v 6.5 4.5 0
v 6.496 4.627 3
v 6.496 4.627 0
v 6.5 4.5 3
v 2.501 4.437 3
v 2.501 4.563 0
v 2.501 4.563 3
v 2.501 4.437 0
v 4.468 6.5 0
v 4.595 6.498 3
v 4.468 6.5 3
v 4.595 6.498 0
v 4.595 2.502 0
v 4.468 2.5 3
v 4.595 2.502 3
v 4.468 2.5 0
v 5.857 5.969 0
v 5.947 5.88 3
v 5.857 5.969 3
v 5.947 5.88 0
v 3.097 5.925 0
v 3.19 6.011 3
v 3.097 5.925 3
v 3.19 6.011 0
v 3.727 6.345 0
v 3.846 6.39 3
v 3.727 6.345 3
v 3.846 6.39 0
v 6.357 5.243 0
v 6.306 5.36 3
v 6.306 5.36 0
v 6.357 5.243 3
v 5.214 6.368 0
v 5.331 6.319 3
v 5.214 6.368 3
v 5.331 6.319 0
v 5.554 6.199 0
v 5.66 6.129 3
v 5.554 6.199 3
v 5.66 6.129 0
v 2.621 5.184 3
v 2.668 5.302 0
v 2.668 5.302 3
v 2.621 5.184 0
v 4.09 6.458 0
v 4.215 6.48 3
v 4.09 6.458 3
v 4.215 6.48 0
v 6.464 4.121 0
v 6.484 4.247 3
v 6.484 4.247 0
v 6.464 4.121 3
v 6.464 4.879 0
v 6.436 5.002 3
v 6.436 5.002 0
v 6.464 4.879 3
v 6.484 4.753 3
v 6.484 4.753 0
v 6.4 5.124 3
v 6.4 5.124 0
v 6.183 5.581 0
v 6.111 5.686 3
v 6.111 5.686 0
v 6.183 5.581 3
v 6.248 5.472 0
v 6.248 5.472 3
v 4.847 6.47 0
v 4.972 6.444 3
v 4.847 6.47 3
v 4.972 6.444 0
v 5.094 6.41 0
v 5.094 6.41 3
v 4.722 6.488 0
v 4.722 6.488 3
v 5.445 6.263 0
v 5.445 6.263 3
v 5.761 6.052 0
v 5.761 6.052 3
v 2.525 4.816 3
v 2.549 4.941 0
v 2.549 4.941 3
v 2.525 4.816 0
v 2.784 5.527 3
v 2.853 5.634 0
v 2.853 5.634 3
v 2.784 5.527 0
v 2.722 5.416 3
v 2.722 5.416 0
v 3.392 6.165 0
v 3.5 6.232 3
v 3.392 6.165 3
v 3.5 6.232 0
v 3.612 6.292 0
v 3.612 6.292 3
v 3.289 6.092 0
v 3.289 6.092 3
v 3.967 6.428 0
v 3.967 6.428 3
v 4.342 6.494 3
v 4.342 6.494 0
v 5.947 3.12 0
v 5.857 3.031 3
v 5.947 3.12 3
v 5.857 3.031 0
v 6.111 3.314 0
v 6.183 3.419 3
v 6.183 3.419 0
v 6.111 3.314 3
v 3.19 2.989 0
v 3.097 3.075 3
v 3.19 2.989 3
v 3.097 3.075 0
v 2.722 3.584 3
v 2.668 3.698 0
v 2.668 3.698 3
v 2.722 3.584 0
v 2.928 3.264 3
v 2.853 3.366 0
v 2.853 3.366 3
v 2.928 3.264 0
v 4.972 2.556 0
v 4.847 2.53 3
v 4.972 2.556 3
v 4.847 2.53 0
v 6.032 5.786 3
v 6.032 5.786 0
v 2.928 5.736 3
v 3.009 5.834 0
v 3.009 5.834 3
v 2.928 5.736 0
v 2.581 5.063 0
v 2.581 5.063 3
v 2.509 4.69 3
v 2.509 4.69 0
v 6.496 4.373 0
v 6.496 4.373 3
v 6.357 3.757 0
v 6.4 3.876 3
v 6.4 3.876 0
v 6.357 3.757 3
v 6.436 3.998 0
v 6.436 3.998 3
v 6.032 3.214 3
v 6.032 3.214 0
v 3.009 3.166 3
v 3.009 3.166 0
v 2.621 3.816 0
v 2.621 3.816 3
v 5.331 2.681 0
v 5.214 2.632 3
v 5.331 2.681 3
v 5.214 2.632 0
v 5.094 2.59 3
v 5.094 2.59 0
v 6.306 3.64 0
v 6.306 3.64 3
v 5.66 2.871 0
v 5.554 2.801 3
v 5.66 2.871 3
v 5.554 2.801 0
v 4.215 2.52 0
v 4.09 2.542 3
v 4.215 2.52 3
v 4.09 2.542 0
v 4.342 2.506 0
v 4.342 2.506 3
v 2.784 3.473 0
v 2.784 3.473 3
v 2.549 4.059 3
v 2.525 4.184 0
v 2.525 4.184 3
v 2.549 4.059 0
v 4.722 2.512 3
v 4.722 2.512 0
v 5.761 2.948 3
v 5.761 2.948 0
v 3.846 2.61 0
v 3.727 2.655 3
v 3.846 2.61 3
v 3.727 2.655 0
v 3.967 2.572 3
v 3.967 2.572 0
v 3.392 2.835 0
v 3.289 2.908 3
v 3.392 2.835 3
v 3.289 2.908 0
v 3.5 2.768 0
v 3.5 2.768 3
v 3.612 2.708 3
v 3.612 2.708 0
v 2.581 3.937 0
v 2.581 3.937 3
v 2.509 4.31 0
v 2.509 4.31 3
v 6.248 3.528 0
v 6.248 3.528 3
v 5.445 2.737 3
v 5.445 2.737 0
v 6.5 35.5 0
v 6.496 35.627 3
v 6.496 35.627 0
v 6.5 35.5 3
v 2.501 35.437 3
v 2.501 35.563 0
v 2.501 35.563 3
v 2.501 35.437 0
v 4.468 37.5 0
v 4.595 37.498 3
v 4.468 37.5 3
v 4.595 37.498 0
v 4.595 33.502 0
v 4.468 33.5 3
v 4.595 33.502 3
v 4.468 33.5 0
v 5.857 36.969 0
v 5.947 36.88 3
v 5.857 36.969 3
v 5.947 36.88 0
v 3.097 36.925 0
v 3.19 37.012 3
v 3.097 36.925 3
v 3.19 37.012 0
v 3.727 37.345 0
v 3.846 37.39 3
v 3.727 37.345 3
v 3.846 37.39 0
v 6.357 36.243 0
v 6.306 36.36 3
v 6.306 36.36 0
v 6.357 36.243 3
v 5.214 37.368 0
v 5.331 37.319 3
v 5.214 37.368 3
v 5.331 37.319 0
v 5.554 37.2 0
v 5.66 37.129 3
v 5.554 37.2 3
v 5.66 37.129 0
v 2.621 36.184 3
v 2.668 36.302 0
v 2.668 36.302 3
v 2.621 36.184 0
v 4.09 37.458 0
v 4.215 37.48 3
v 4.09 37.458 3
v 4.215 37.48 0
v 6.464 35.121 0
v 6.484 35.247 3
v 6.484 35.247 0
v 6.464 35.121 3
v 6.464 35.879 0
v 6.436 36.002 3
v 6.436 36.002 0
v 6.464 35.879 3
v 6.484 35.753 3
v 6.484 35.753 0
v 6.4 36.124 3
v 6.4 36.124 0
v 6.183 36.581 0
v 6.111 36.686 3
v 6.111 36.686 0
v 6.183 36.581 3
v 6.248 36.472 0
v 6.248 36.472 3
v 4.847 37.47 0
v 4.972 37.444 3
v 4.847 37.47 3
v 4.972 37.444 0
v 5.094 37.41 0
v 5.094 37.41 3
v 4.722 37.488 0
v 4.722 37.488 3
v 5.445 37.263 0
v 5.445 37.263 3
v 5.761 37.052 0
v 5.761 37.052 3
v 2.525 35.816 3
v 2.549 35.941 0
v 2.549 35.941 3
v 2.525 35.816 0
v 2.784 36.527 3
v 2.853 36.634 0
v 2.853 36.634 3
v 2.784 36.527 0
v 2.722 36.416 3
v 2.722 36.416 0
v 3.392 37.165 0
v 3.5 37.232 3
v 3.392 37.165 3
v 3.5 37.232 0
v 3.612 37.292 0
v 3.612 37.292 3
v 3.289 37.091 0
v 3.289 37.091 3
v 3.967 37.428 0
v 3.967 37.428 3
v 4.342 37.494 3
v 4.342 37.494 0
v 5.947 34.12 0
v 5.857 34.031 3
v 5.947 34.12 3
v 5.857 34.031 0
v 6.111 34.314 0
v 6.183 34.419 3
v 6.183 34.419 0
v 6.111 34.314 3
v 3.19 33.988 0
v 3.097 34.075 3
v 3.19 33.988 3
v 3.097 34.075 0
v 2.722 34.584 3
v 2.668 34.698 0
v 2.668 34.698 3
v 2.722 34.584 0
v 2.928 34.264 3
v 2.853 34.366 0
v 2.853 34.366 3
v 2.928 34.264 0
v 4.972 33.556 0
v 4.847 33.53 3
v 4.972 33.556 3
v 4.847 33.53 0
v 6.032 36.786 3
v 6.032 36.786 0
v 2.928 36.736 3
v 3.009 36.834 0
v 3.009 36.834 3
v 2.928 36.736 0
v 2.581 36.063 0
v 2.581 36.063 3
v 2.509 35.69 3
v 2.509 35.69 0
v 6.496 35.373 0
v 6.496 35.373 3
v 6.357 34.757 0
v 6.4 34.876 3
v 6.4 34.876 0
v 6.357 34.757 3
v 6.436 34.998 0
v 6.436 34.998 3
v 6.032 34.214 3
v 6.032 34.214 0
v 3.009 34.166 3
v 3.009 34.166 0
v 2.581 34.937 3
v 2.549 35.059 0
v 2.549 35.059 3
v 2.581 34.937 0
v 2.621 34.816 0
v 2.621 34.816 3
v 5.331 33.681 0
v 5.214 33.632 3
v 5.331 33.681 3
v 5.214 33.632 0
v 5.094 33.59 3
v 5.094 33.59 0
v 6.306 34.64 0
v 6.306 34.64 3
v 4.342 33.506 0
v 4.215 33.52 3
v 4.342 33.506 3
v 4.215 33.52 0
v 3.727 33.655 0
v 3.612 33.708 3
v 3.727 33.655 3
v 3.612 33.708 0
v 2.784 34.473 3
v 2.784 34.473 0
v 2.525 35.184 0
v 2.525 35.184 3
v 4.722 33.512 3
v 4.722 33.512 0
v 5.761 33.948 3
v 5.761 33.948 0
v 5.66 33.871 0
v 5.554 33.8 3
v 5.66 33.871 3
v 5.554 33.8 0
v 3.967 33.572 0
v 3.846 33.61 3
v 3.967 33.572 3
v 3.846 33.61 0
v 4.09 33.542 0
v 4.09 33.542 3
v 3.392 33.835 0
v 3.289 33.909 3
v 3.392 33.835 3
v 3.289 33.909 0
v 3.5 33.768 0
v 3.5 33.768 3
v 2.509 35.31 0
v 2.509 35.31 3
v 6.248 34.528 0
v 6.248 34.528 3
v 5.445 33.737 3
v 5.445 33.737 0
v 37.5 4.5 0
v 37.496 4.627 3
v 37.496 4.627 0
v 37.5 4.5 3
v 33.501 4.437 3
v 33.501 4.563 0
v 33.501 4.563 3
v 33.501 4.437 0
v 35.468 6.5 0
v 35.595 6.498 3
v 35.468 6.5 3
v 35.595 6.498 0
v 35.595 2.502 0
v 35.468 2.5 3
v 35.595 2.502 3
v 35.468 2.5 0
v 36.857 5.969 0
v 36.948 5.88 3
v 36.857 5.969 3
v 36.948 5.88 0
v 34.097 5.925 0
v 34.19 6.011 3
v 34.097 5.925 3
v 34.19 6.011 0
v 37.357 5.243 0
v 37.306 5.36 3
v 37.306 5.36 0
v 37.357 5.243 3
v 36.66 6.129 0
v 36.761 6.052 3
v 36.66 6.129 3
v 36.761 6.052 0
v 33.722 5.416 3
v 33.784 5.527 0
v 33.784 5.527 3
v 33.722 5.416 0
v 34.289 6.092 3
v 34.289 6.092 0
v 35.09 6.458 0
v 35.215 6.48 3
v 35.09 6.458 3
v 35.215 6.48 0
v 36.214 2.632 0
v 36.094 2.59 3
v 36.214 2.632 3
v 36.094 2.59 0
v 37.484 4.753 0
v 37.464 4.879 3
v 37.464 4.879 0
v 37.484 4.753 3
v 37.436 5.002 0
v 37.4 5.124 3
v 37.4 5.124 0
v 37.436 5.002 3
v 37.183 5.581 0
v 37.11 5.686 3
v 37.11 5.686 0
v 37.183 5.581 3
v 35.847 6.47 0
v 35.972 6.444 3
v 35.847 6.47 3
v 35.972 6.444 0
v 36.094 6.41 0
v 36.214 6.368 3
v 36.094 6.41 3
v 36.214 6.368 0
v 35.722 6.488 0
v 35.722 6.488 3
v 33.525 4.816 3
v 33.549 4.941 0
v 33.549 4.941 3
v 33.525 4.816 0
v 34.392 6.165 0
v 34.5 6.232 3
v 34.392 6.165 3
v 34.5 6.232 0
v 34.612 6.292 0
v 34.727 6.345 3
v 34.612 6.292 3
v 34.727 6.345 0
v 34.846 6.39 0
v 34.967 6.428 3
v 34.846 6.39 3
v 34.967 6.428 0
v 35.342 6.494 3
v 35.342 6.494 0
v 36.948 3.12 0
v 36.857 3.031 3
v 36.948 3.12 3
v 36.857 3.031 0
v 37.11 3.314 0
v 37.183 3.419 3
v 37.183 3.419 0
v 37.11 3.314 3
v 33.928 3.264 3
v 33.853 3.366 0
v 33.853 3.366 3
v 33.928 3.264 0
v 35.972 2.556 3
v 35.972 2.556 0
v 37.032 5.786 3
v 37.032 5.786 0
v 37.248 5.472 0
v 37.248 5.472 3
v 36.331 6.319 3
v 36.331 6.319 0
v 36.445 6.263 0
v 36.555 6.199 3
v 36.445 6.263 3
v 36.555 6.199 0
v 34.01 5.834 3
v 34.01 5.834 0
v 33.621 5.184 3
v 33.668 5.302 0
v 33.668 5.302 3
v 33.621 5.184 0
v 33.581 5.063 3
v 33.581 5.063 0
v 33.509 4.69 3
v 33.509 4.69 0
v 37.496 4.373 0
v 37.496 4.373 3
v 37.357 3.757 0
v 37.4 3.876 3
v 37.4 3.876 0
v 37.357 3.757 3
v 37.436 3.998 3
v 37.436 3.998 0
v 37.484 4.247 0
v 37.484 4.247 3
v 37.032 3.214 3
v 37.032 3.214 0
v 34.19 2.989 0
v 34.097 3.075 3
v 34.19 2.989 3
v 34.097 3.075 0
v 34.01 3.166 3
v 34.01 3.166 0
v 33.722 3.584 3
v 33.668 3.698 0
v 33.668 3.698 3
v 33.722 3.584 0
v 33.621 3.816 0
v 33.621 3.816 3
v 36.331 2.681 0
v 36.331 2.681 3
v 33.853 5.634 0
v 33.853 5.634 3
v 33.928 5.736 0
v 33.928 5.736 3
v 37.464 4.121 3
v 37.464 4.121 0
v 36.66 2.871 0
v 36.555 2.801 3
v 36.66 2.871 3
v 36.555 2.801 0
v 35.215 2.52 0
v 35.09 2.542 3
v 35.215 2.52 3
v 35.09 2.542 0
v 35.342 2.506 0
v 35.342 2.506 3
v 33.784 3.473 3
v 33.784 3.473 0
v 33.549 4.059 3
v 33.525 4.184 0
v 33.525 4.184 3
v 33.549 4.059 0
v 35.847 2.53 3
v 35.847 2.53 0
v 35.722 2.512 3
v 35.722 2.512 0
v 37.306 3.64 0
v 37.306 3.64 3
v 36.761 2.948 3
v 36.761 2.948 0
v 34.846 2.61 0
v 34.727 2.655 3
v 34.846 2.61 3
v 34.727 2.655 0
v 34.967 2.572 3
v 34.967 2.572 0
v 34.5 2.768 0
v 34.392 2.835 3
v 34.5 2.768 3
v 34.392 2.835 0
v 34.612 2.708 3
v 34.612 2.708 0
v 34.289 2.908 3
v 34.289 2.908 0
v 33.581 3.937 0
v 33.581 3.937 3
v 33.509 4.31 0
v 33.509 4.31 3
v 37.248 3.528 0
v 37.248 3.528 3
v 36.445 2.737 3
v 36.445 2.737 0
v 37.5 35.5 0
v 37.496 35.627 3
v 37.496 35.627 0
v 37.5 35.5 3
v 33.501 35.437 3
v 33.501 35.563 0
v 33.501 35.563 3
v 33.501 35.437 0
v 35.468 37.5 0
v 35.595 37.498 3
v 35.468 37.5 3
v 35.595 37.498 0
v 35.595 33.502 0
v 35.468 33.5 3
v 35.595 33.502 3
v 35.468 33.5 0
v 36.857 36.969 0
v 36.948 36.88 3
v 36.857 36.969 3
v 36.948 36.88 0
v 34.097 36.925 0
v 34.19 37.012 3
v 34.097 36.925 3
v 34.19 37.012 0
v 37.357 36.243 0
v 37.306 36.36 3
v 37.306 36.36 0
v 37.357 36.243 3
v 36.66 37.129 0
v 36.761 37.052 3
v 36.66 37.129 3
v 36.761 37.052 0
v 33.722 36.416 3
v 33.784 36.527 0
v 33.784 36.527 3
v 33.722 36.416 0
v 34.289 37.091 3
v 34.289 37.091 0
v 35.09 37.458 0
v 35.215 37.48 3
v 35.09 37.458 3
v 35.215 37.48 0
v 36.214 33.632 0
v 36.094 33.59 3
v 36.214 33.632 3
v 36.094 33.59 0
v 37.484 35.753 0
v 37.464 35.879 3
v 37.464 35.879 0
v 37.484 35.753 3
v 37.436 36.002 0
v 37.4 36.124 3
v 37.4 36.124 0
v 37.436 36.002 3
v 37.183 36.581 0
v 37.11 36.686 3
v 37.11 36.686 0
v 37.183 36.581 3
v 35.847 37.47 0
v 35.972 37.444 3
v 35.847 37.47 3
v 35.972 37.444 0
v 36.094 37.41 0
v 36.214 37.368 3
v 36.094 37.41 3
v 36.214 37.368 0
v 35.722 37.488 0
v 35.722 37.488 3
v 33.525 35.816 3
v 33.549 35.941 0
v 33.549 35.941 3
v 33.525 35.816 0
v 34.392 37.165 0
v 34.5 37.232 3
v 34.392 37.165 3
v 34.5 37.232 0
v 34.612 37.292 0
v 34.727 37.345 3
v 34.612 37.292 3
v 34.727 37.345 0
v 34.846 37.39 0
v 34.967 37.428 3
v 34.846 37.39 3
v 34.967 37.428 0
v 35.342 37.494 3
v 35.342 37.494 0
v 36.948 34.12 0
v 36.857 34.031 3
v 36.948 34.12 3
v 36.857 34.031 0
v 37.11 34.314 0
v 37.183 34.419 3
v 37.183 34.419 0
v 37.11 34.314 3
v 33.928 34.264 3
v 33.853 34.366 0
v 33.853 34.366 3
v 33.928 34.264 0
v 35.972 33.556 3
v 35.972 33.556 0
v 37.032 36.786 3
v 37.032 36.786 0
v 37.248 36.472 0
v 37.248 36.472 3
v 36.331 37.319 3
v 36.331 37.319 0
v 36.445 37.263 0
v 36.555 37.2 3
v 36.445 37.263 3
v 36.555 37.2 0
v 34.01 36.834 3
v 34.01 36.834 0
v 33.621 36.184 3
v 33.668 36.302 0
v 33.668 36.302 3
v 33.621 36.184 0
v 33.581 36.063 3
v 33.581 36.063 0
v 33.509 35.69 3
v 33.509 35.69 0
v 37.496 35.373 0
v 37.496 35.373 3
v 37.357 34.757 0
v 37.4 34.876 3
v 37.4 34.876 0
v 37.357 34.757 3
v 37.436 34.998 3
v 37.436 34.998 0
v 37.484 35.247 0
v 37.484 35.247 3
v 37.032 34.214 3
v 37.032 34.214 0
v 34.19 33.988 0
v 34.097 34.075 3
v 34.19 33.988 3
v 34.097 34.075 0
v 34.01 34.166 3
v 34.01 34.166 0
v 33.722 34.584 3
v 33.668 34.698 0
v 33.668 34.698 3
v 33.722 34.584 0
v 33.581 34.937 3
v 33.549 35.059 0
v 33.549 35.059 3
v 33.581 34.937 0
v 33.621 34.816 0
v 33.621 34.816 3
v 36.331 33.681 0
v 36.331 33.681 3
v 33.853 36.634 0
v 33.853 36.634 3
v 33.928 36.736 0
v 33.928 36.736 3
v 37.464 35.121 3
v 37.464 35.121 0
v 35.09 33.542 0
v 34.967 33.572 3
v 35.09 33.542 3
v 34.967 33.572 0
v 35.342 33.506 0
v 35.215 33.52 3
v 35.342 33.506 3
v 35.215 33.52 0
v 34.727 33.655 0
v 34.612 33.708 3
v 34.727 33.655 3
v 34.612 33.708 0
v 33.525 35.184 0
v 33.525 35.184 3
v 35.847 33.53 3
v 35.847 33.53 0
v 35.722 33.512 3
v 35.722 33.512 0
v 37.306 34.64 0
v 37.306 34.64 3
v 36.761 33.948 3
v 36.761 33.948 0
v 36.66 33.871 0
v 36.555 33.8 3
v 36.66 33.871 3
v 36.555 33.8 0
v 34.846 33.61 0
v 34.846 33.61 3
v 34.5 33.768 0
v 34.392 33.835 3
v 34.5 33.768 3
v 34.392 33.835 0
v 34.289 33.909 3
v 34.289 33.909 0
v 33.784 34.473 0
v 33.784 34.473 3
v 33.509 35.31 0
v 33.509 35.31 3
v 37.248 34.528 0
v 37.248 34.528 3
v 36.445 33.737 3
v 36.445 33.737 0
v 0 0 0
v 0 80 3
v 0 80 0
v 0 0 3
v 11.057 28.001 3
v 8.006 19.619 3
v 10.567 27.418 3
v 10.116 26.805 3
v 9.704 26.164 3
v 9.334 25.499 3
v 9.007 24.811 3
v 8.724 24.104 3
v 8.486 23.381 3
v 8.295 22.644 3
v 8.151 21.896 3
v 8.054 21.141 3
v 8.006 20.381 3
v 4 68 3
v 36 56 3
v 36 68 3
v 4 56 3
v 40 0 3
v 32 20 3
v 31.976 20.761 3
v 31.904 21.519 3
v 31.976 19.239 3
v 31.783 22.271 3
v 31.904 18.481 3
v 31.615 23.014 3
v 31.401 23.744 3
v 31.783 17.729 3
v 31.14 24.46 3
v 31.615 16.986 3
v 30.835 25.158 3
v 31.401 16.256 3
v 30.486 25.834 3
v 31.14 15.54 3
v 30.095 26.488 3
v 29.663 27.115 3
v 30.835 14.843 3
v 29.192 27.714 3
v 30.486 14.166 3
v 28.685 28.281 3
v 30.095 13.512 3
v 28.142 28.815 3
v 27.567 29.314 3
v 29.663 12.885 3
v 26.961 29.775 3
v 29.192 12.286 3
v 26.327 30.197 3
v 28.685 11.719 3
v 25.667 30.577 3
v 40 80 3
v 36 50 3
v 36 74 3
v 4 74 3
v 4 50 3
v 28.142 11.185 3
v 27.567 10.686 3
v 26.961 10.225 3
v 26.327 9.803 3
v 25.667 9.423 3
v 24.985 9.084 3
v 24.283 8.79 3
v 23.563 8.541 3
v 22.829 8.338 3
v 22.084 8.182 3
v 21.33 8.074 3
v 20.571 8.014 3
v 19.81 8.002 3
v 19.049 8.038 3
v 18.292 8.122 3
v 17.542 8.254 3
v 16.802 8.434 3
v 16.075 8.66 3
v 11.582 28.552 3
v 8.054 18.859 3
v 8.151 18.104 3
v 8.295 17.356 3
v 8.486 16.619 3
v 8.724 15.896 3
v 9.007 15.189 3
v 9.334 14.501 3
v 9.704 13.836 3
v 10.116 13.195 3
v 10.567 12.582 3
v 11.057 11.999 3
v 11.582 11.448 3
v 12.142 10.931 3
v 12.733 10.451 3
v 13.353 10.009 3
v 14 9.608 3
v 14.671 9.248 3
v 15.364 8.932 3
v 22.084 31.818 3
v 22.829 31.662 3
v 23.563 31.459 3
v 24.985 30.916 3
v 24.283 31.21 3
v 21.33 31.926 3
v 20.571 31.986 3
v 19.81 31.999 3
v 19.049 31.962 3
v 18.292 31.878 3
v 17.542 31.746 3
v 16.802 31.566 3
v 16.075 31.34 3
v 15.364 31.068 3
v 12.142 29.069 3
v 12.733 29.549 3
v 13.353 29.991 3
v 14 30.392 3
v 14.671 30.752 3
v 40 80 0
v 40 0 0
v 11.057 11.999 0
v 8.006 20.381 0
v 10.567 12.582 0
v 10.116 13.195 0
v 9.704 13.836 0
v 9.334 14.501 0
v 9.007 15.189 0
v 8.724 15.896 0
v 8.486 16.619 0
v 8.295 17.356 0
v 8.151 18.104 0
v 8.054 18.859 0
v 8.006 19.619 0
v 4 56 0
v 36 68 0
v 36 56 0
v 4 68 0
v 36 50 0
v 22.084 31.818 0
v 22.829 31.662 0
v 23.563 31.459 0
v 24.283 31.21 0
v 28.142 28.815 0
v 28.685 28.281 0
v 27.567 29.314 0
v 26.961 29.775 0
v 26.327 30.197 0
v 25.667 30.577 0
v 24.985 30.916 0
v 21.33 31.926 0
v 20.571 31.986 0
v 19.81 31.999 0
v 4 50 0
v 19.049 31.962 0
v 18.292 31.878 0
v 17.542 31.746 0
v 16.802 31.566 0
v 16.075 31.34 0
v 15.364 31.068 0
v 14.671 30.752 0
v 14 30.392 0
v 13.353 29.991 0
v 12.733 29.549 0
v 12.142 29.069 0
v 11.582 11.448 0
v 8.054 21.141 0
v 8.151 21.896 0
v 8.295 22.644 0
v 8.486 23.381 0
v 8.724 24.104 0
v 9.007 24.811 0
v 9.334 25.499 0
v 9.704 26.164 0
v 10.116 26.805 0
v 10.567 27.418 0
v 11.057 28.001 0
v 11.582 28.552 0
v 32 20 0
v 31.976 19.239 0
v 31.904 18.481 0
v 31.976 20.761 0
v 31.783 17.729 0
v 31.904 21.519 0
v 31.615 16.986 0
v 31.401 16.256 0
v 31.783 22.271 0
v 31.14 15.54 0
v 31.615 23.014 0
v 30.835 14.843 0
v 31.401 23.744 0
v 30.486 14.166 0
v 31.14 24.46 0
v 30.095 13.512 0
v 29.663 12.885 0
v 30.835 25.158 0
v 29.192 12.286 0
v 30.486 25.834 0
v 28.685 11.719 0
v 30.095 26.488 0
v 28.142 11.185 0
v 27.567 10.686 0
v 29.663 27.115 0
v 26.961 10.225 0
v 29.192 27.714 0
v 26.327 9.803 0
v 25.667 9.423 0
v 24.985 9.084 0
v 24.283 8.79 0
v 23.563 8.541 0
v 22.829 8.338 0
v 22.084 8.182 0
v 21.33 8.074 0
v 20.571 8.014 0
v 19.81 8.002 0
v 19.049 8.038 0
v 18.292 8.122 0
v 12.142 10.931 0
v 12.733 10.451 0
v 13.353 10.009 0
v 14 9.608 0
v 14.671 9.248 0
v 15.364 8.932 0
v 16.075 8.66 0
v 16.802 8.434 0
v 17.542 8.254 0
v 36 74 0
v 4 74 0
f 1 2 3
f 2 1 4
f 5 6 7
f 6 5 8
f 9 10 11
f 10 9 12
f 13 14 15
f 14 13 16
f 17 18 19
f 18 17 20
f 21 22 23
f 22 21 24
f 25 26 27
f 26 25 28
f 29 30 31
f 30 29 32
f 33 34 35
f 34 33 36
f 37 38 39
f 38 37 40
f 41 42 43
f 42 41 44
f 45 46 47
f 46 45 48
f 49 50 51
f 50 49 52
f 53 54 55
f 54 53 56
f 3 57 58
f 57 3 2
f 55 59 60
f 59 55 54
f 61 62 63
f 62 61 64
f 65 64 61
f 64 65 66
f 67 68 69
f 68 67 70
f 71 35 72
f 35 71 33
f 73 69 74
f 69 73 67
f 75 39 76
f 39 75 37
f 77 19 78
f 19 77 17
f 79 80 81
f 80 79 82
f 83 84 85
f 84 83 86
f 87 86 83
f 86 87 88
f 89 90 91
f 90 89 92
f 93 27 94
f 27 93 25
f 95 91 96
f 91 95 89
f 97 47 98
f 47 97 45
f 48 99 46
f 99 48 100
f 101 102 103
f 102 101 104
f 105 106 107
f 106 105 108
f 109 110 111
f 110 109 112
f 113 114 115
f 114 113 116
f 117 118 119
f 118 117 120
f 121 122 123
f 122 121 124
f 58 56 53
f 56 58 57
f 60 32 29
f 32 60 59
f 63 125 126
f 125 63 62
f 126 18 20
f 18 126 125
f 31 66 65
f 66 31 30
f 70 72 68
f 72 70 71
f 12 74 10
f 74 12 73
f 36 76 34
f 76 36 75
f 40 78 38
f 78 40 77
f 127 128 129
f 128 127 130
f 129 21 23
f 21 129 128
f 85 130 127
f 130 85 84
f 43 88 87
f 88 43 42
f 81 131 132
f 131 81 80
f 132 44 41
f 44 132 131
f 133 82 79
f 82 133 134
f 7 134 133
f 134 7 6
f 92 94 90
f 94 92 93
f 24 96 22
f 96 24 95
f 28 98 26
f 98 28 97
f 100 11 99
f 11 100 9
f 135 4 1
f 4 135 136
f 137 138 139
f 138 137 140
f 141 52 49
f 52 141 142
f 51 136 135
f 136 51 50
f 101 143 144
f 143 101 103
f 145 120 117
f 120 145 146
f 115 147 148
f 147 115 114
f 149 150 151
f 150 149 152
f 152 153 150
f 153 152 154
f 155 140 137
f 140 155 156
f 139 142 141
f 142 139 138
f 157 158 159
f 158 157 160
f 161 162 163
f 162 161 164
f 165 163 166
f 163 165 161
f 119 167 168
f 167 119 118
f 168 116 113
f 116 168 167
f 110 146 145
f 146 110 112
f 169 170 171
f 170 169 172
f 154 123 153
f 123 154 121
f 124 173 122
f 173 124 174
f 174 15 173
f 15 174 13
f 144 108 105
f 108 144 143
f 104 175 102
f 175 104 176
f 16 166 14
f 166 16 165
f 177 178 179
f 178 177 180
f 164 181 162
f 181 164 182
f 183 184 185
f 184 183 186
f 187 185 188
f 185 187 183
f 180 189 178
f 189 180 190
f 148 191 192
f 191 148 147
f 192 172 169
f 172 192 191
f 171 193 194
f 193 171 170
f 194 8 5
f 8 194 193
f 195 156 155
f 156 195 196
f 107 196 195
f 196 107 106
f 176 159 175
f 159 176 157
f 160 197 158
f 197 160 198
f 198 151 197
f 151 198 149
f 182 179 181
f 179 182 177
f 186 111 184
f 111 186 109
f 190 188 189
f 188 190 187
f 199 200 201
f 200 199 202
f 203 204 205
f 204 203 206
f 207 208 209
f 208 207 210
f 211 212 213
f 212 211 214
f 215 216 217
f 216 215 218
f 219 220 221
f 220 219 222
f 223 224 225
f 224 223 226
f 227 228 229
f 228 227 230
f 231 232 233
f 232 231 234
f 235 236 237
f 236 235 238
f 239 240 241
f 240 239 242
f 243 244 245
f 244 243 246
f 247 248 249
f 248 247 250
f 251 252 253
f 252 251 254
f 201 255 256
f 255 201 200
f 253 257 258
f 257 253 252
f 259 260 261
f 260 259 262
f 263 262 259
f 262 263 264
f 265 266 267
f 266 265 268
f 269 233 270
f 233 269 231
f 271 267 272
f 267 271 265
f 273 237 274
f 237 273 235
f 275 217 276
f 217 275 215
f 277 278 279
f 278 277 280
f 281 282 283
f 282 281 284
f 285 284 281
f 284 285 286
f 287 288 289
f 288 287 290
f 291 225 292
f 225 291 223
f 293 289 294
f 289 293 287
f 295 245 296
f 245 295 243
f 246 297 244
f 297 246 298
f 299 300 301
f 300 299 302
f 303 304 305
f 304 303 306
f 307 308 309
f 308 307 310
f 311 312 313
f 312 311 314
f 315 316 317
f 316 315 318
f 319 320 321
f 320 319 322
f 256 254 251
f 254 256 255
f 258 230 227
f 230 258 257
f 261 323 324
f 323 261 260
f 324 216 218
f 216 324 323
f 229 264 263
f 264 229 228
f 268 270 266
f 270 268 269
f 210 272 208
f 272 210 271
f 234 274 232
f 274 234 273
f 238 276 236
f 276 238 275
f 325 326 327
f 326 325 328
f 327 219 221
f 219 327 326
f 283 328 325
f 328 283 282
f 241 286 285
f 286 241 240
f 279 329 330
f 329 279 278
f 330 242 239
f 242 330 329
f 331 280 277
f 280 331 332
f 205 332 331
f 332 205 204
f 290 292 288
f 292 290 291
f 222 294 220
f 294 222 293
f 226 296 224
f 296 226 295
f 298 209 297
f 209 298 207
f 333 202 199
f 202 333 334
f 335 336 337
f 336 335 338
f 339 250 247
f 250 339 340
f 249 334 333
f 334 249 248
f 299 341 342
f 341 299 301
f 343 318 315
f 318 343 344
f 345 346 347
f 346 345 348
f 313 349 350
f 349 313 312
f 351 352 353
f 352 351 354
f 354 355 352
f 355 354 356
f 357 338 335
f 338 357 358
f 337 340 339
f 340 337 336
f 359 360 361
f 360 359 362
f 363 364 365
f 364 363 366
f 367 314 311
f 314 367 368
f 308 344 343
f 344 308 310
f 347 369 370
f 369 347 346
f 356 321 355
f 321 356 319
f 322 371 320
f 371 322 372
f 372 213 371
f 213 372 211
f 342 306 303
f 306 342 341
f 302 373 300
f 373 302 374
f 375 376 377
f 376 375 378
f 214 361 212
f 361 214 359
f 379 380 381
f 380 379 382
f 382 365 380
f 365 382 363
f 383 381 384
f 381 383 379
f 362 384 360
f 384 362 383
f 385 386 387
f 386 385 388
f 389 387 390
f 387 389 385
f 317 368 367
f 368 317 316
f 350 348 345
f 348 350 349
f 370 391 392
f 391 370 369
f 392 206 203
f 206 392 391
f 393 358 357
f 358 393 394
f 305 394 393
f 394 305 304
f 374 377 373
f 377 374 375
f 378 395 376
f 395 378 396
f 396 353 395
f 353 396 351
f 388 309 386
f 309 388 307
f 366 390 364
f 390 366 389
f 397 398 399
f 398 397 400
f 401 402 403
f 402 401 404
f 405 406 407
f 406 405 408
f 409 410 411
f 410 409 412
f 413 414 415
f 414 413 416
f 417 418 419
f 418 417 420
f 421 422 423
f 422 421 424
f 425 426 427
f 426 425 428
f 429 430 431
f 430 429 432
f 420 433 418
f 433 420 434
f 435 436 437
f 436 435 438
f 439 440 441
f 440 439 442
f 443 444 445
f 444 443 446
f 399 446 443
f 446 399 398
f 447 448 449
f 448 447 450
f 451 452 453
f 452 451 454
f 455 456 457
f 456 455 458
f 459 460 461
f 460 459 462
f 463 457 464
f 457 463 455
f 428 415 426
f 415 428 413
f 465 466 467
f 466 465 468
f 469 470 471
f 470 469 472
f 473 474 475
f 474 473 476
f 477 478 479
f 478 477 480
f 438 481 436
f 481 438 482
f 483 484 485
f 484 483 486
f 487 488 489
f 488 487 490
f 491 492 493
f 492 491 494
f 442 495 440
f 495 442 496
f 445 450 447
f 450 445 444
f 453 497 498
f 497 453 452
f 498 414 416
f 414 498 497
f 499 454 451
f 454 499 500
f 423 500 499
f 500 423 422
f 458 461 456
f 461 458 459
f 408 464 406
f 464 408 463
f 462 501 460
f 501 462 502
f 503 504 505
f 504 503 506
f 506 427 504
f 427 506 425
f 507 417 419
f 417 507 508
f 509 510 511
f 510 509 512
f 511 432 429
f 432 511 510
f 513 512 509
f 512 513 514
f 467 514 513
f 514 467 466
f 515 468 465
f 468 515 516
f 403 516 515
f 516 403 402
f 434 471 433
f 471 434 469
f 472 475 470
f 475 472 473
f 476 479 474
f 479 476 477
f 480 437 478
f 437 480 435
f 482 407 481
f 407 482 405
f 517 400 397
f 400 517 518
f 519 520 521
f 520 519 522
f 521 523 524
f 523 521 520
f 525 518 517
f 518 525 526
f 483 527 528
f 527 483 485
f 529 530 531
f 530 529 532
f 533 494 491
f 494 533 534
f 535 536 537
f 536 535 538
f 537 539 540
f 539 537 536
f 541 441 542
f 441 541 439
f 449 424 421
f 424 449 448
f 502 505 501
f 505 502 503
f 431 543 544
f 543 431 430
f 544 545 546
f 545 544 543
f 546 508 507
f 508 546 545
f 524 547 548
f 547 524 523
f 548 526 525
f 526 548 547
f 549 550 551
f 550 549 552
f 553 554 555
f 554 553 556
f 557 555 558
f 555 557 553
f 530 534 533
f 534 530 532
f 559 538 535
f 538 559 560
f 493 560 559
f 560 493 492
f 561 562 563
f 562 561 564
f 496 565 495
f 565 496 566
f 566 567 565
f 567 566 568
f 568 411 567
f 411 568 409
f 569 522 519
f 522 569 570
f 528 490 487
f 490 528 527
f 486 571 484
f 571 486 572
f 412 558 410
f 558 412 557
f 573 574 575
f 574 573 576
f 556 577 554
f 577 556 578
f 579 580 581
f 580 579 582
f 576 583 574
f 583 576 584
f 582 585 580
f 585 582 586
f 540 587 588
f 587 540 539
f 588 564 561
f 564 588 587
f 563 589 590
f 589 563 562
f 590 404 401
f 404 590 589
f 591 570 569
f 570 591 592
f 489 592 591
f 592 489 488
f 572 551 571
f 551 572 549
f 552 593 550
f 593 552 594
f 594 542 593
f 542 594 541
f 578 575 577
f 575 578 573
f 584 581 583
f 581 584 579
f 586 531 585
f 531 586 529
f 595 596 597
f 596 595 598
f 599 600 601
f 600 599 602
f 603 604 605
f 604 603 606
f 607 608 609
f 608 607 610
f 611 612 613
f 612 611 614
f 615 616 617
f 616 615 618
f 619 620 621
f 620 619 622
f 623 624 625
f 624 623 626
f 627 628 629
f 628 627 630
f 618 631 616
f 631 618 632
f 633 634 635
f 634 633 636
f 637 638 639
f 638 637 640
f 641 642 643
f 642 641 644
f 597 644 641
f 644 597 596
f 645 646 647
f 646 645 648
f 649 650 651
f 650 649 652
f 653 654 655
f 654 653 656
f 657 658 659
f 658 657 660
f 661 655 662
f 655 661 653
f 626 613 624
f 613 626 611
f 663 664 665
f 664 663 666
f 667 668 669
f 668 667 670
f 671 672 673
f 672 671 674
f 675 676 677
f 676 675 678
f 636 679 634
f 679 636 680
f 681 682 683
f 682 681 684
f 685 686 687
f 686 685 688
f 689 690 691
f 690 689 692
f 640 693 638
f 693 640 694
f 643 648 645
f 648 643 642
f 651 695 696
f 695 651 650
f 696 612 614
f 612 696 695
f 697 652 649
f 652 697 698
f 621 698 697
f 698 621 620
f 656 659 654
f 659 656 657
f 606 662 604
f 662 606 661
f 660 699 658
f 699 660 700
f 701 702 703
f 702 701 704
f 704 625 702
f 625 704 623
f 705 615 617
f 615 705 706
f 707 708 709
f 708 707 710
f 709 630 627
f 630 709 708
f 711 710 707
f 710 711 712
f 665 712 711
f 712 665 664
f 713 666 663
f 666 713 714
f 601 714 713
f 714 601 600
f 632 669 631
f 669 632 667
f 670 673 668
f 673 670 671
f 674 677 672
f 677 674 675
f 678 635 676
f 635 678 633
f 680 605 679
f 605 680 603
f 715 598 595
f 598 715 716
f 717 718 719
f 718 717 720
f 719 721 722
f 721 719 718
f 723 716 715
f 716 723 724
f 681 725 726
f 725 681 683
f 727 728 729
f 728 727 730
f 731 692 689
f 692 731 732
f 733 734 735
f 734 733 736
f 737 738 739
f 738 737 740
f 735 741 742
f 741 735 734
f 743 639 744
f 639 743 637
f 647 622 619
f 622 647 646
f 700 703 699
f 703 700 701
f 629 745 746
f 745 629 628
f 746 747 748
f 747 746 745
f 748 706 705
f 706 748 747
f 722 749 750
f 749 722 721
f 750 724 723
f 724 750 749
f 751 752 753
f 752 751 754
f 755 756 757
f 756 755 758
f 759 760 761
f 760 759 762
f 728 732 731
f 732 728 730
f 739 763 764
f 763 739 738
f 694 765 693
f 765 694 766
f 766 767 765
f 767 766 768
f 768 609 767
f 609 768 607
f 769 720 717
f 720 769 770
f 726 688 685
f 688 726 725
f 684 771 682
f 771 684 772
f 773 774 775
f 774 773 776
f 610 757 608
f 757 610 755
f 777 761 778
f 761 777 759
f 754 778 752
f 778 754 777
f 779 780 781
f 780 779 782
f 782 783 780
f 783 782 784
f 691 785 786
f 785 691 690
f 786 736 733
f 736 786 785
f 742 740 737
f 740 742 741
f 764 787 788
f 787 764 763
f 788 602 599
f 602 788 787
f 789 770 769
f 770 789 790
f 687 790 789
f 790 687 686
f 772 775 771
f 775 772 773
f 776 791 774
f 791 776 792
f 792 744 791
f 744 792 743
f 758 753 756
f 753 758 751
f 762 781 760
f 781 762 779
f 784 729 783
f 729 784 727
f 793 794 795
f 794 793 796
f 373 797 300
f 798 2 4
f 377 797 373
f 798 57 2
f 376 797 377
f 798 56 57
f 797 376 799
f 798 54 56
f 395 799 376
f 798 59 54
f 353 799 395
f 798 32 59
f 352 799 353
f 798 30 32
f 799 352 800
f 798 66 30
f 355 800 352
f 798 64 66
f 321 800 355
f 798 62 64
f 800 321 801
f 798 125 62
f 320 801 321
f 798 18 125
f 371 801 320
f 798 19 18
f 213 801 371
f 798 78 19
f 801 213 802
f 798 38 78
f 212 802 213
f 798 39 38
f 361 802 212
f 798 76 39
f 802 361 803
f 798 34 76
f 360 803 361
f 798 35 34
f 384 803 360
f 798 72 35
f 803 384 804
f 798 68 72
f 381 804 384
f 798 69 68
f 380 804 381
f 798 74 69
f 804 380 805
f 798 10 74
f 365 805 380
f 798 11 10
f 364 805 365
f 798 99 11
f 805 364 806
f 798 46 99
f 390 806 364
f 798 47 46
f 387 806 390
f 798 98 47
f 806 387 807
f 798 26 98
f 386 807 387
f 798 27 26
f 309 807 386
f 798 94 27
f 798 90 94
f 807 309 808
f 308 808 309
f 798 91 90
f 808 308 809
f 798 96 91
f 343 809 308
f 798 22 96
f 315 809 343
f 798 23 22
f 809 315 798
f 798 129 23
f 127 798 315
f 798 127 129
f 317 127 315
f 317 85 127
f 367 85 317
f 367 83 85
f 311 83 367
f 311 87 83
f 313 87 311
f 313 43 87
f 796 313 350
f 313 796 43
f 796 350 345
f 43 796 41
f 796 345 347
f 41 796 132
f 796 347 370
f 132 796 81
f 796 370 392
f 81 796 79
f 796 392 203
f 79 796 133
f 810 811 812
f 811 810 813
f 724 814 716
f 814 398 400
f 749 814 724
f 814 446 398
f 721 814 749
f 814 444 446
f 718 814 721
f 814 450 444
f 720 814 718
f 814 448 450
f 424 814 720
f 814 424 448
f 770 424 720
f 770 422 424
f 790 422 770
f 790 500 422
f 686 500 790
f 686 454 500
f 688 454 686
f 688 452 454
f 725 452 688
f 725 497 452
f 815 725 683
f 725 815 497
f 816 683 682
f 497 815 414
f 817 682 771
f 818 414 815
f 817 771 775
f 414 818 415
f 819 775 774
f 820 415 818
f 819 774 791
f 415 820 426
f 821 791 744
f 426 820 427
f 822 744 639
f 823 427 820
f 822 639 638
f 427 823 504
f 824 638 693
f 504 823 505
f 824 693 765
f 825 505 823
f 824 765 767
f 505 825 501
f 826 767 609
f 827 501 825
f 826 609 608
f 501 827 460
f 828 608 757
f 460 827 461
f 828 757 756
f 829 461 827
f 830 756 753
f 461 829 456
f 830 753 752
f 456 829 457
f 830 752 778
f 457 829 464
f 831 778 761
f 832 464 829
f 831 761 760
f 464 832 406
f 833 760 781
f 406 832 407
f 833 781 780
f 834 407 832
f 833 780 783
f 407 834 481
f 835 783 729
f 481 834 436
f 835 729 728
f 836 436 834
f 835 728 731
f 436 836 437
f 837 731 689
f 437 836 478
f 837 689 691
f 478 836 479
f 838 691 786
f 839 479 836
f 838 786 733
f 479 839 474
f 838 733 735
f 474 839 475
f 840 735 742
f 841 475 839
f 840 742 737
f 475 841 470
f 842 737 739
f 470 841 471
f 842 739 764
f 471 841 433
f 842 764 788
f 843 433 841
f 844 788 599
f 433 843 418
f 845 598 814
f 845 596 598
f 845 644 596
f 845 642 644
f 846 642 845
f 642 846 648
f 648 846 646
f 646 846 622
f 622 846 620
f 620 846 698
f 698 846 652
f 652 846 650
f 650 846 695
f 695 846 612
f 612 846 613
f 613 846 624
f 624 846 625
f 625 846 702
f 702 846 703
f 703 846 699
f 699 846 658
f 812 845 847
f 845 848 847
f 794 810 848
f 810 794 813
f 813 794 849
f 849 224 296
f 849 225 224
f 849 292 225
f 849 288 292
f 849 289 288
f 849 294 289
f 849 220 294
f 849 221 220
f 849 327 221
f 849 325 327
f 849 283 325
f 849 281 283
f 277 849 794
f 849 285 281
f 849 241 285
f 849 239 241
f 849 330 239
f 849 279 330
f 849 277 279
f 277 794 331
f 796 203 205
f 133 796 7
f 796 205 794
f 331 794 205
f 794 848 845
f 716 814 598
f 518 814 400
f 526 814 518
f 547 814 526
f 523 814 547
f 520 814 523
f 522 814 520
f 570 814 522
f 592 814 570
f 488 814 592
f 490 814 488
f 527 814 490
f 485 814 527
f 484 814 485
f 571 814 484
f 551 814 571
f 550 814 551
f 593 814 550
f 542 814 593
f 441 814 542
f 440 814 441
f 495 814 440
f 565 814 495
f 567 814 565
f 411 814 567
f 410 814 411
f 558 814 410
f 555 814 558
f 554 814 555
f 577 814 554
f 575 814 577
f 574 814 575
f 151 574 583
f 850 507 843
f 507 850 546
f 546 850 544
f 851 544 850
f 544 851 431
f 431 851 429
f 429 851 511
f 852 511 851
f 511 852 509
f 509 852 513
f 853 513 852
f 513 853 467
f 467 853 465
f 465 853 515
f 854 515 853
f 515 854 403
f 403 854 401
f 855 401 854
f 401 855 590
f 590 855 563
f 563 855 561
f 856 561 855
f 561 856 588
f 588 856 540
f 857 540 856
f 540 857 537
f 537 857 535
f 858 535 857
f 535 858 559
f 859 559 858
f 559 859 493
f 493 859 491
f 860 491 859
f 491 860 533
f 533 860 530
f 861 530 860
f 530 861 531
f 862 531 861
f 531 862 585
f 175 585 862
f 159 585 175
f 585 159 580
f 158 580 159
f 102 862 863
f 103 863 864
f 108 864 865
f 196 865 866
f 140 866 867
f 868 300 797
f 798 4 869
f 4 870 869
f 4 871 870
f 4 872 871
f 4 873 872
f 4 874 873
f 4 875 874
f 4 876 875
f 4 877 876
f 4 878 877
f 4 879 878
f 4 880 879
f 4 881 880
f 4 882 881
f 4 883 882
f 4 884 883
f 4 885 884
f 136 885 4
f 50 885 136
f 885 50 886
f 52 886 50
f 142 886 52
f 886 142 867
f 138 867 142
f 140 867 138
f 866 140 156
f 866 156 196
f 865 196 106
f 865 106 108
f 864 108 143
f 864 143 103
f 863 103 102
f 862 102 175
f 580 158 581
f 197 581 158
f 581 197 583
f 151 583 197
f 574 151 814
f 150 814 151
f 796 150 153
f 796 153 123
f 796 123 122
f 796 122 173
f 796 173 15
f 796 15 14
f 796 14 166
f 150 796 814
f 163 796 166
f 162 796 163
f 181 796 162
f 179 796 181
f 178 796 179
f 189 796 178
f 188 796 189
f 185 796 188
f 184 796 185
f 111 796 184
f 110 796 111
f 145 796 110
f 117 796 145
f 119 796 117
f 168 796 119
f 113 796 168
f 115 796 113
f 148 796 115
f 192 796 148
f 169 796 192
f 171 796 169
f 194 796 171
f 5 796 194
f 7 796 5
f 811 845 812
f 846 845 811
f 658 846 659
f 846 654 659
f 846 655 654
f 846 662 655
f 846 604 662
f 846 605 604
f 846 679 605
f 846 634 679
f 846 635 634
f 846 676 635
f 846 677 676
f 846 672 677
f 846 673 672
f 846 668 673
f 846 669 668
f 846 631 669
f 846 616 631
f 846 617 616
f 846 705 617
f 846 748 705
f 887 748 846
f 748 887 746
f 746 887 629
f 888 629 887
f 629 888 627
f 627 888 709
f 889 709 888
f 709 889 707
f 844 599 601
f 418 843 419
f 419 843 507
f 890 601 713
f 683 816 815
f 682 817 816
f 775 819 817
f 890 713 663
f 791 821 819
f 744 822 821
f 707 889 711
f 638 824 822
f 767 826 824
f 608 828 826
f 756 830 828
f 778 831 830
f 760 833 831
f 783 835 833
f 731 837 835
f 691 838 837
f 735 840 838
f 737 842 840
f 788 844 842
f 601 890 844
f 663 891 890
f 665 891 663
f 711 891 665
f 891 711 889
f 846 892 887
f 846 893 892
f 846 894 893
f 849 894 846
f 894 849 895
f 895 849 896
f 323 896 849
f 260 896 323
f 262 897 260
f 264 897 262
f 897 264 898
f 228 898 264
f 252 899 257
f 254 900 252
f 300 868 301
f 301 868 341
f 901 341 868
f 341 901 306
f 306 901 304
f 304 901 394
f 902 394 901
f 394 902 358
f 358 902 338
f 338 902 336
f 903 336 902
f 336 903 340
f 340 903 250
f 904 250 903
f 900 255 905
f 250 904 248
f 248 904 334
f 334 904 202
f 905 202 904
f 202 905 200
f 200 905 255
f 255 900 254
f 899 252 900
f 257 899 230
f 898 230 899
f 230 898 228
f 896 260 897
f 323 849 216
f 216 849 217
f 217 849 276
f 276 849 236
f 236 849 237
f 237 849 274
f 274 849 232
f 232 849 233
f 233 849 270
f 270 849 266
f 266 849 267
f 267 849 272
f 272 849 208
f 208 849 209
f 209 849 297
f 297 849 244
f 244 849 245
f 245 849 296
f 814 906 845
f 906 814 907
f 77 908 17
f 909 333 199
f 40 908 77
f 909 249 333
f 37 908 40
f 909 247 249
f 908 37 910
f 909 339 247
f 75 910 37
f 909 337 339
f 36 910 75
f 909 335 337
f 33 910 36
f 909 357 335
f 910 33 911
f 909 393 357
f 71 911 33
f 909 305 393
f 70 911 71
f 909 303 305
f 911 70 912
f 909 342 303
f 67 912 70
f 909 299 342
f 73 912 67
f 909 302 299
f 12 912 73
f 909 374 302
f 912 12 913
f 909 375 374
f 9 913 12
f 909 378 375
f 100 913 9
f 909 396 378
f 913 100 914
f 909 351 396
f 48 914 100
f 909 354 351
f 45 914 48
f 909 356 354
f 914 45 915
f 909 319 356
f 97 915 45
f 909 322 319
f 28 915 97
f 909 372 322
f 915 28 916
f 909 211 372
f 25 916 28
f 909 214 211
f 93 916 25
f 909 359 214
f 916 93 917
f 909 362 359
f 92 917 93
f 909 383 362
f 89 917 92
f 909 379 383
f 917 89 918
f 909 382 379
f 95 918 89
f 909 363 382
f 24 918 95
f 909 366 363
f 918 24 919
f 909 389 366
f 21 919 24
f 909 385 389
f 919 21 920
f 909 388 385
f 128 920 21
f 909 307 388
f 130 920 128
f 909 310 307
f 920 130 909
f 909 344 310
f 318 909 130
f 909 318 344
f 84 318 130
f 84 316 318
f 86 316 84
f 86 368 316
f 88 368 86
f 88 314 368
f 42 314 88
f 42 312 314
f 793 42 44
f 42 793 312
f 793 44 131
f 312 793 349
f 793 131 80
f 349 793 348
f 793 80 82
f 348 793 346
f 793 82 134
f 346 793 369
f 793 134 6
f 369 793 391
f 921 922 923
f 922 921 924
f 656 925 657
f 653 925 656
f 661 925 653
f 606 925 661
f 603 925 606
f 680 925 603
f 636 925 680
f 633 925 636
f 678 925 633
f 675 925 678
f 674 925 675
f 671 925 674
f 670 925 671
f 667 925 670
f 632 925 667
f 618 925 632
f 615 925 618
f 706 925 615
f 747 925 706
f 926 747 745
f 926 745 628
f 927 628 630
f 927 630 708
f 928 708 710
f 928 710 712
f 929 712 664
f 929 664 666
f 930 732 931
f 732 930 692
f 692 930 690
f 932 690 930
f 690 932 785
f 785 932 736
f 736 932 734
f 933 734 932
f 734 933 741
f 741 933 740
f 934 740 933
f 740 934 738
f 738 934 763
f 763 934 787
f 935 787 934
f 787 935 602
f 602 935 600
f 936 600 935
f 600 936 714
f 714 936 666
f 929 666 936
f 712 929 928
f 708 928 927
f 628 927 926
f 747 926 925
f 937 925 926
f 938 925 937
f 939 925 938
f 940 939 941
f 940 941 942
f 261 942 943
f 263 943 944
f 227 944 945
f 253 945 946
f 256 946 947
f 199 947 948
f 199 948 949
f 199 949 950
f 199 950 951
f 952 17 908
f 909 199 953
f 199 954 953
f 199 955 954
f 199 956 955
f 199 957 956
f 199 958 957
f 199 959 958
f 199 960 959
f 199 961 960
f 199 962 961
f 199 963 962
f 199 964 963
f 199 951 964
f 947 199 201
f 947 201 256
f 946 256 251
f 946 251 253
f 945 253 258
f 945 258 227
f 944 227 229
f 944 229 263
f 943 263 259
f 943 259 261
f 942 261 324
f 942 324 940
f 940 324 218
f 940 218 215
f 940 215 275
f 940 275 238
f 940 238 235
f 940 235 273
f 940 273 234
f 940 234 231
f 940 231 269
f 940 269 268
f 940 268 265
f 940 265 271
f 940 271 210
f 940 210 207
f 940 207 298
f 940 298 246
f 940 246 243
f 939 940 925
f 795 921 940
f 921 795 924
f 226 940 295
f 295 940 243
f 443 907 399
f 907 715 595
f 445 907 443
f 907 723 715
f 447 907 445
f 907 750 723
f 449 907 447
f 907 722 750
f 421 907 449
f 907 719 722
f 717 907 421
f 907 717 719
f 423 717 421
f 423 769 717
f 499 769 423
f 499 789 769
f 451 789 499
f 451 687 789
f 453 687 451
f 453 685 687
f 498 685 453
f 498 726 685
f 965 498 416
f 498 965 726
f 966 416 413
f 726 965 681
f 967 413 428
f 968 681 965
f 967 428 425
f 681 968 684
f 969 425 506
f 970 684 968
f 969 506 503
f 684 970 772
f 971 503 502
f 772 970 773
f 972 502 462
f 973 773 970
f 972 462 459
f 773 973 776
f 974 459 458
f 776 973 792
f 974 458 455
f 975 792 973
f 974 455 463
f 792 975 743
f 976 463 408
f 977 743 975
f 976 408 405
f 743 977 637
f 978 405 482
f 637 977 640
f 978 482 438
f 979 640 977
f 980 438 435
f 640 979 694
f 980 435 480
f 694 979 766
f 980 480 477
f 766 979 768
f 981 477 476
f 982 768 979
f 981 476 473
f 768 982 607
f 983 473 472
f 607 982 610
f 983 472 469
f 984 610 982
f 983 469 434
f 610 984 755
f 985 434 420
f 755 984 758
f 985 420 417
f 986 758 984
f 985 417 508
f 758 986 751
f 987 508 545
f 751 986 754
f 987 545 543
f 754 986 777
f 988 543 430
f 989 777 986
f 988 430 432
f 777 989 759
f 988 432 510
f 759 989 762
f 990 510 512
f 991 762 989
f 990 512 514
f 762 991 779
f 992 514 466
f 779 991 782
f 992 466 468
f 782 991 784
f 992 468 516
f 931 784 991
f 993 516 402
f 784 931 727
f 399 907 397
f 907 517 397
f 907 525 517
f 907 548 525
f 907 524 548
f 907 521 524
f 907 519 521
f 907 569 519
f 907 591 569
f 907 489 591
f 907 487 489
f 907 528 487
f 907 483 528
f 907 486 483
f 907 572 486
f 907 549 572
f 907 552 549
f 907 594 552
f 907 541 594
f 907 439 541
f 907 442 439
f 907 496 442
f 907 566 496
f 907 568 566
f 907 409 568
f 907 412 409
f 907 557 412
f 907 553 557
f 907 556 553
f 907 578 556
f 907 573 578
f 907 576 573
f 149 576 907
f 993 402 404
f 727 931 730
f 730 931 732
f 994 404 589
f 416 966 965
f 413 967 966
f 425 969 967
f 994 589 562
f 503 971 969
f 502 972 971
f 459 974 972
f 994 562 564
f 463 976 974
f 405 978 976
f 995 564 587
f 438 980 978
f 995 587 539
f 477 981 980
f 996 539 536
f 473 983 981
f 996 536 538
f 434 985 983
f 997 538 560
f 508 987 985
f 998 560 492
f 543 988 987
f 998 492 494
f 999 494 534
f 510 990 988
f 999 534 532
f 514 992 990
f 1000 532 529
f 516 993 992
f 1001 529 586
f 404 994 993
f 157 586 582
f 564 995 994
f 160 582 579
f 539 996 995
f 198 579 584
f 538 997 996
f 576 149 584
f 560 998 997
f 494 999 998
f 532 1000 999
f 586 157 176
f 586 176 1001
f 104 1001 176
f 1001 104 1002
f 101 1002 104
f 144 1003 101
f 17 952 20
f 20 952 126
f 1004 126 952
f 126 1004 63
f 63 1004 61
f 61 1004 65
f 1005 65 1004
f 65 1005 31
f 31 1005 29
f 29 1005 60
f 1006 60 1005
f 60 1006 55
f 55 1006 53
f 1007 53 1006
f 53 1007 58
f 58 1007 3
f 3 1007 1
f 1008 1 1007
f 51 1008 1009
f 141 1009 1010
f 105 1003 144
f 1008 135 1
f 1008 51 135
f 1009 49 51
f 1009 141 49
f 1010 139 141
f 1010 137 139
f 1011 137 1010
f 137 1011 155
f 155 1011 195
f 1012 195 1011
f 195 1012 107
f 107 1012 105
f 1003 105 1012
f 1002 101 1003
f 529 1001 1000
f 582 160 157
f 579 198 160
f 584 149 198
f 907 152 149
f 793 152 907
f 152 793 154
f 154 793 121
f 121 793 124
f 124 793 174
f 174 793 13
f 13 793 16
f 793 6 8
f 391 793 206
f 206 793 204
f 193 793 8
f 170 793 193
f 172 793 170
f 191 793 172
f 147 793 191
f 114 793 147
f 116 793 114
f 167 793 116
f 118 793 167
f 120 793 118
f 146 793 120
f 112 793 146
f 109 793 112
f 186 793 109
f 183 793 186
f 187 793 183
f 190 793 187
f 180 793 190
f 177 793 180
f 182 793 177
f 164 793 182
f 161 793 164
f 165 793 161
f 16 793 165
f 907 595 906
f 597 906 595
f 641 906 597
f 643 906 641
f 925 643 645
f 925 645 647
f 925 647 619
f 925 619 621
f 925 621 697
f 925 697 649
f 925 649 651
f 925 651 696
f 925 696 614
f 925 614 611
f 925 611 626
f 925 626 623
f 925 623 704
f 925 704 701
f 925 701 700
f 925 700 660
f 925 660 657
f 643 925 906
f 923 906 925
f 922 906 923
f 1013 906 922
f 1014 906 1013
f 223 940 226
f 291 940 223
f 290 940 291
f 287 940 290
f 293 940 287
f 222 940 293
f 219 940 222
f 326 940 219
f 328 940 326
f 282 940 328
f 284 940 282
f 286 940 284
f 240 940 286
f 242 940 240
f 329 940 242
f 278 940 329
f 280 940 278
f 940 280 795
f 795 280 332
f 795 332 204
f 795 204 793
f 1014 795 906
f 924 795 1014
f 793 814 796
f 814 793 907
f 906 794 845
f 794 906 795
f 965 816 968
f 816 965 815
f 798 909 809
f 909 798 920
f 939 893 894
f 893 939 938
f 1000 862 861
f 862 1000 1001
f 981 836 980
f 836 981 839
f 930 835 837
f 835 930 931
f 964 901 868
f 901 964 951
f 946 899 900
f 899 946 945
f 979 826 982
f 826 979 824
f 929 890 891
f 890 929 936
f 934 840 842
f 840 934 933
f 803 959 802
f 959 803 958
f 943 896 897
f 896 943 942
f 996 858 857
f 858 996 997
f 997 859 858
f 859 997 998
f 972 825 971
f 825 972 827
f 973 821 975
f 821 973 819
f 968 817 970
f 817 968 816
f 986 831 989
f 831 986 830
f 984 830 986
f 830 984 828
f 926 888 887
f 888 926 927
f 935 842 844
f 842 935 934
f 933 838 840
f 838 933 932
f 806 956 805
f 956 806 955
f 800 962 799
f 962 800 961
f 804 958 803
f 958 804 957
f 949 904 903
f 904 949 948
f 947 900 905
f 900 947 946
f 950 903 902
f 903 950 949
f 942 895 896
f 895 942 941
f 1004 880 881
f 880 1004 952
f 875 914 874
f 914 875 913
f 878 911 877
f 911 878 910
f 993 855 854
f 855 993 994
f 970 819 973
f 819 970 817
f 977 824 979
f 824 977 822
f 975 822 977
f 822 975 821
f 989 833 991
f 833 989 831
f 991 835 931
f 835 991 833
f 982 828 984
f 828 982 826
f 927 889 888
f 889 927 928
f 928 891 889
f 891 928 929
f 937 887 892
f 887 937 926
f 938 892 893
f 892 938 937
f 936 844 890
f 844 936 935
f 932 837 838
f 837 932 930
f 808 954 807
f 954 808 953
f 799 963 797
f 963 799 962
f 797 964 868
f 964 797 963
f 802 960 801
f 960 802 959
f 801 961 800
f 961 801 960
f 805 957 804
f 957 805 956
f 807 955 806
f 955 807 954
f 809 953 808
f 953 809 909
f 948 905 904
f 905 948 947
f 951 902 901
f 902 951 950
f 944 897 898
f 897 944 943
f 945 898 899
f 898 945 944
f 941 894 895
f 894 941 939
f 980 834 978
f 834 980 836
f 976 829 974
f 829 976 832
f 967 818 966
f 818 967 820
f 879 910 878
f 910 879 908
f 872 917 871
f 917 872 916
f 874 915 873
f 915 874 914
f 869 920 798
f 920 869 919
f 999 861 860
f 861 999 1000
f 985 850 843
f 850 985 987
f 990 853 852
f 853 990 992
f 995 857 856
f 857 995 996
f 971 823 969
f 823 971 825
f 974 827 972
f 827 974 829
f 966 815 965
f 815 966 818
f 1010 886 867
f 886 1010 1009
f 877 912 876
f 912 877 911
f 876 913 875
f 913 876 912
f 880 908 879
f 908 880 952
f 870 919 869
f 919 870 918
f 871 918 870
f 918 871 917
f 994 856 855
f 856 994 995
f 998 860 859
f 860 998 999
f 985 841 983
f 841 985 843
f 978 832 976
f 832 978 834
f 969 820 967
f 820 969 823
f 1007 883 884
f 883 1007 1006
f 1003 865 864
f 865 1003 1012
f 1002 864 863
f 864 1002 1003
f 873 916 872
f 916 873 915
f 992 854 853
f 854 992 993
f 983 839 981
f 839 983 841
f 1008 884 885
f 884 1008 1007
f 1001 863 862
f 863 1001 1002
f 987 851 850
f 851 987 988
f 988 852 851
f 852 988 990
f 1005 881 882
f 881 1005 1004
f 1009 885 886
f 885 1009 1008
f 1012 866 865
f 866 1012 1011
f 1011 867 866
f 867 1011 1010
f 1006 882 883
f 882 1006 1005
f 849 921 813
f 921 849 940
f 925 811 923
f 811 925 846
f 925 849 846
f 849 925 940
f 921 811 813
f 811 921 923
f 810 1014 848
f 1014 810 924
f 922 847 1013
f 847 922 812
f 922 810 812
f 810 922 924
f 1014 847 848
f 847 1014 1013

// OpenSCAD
$fn=99; 

difference() {
    cube([40,80,3]); 
    for(i=[0,1]) for(j=[0,1]) translate([4.5+31*i,4.5+31*j,0]) cylinder(r=2, h=10, center=true); 
    translate([20,20,0]) cylinder( r=12, h=10, center=true ); 
    translate([4,50,-1]) cube([32,6,10]); 
    translate([4,68,-1]) cube([32,6,10]); 
    translate([4,50,-1]) cube([32,6,10]); 
}
